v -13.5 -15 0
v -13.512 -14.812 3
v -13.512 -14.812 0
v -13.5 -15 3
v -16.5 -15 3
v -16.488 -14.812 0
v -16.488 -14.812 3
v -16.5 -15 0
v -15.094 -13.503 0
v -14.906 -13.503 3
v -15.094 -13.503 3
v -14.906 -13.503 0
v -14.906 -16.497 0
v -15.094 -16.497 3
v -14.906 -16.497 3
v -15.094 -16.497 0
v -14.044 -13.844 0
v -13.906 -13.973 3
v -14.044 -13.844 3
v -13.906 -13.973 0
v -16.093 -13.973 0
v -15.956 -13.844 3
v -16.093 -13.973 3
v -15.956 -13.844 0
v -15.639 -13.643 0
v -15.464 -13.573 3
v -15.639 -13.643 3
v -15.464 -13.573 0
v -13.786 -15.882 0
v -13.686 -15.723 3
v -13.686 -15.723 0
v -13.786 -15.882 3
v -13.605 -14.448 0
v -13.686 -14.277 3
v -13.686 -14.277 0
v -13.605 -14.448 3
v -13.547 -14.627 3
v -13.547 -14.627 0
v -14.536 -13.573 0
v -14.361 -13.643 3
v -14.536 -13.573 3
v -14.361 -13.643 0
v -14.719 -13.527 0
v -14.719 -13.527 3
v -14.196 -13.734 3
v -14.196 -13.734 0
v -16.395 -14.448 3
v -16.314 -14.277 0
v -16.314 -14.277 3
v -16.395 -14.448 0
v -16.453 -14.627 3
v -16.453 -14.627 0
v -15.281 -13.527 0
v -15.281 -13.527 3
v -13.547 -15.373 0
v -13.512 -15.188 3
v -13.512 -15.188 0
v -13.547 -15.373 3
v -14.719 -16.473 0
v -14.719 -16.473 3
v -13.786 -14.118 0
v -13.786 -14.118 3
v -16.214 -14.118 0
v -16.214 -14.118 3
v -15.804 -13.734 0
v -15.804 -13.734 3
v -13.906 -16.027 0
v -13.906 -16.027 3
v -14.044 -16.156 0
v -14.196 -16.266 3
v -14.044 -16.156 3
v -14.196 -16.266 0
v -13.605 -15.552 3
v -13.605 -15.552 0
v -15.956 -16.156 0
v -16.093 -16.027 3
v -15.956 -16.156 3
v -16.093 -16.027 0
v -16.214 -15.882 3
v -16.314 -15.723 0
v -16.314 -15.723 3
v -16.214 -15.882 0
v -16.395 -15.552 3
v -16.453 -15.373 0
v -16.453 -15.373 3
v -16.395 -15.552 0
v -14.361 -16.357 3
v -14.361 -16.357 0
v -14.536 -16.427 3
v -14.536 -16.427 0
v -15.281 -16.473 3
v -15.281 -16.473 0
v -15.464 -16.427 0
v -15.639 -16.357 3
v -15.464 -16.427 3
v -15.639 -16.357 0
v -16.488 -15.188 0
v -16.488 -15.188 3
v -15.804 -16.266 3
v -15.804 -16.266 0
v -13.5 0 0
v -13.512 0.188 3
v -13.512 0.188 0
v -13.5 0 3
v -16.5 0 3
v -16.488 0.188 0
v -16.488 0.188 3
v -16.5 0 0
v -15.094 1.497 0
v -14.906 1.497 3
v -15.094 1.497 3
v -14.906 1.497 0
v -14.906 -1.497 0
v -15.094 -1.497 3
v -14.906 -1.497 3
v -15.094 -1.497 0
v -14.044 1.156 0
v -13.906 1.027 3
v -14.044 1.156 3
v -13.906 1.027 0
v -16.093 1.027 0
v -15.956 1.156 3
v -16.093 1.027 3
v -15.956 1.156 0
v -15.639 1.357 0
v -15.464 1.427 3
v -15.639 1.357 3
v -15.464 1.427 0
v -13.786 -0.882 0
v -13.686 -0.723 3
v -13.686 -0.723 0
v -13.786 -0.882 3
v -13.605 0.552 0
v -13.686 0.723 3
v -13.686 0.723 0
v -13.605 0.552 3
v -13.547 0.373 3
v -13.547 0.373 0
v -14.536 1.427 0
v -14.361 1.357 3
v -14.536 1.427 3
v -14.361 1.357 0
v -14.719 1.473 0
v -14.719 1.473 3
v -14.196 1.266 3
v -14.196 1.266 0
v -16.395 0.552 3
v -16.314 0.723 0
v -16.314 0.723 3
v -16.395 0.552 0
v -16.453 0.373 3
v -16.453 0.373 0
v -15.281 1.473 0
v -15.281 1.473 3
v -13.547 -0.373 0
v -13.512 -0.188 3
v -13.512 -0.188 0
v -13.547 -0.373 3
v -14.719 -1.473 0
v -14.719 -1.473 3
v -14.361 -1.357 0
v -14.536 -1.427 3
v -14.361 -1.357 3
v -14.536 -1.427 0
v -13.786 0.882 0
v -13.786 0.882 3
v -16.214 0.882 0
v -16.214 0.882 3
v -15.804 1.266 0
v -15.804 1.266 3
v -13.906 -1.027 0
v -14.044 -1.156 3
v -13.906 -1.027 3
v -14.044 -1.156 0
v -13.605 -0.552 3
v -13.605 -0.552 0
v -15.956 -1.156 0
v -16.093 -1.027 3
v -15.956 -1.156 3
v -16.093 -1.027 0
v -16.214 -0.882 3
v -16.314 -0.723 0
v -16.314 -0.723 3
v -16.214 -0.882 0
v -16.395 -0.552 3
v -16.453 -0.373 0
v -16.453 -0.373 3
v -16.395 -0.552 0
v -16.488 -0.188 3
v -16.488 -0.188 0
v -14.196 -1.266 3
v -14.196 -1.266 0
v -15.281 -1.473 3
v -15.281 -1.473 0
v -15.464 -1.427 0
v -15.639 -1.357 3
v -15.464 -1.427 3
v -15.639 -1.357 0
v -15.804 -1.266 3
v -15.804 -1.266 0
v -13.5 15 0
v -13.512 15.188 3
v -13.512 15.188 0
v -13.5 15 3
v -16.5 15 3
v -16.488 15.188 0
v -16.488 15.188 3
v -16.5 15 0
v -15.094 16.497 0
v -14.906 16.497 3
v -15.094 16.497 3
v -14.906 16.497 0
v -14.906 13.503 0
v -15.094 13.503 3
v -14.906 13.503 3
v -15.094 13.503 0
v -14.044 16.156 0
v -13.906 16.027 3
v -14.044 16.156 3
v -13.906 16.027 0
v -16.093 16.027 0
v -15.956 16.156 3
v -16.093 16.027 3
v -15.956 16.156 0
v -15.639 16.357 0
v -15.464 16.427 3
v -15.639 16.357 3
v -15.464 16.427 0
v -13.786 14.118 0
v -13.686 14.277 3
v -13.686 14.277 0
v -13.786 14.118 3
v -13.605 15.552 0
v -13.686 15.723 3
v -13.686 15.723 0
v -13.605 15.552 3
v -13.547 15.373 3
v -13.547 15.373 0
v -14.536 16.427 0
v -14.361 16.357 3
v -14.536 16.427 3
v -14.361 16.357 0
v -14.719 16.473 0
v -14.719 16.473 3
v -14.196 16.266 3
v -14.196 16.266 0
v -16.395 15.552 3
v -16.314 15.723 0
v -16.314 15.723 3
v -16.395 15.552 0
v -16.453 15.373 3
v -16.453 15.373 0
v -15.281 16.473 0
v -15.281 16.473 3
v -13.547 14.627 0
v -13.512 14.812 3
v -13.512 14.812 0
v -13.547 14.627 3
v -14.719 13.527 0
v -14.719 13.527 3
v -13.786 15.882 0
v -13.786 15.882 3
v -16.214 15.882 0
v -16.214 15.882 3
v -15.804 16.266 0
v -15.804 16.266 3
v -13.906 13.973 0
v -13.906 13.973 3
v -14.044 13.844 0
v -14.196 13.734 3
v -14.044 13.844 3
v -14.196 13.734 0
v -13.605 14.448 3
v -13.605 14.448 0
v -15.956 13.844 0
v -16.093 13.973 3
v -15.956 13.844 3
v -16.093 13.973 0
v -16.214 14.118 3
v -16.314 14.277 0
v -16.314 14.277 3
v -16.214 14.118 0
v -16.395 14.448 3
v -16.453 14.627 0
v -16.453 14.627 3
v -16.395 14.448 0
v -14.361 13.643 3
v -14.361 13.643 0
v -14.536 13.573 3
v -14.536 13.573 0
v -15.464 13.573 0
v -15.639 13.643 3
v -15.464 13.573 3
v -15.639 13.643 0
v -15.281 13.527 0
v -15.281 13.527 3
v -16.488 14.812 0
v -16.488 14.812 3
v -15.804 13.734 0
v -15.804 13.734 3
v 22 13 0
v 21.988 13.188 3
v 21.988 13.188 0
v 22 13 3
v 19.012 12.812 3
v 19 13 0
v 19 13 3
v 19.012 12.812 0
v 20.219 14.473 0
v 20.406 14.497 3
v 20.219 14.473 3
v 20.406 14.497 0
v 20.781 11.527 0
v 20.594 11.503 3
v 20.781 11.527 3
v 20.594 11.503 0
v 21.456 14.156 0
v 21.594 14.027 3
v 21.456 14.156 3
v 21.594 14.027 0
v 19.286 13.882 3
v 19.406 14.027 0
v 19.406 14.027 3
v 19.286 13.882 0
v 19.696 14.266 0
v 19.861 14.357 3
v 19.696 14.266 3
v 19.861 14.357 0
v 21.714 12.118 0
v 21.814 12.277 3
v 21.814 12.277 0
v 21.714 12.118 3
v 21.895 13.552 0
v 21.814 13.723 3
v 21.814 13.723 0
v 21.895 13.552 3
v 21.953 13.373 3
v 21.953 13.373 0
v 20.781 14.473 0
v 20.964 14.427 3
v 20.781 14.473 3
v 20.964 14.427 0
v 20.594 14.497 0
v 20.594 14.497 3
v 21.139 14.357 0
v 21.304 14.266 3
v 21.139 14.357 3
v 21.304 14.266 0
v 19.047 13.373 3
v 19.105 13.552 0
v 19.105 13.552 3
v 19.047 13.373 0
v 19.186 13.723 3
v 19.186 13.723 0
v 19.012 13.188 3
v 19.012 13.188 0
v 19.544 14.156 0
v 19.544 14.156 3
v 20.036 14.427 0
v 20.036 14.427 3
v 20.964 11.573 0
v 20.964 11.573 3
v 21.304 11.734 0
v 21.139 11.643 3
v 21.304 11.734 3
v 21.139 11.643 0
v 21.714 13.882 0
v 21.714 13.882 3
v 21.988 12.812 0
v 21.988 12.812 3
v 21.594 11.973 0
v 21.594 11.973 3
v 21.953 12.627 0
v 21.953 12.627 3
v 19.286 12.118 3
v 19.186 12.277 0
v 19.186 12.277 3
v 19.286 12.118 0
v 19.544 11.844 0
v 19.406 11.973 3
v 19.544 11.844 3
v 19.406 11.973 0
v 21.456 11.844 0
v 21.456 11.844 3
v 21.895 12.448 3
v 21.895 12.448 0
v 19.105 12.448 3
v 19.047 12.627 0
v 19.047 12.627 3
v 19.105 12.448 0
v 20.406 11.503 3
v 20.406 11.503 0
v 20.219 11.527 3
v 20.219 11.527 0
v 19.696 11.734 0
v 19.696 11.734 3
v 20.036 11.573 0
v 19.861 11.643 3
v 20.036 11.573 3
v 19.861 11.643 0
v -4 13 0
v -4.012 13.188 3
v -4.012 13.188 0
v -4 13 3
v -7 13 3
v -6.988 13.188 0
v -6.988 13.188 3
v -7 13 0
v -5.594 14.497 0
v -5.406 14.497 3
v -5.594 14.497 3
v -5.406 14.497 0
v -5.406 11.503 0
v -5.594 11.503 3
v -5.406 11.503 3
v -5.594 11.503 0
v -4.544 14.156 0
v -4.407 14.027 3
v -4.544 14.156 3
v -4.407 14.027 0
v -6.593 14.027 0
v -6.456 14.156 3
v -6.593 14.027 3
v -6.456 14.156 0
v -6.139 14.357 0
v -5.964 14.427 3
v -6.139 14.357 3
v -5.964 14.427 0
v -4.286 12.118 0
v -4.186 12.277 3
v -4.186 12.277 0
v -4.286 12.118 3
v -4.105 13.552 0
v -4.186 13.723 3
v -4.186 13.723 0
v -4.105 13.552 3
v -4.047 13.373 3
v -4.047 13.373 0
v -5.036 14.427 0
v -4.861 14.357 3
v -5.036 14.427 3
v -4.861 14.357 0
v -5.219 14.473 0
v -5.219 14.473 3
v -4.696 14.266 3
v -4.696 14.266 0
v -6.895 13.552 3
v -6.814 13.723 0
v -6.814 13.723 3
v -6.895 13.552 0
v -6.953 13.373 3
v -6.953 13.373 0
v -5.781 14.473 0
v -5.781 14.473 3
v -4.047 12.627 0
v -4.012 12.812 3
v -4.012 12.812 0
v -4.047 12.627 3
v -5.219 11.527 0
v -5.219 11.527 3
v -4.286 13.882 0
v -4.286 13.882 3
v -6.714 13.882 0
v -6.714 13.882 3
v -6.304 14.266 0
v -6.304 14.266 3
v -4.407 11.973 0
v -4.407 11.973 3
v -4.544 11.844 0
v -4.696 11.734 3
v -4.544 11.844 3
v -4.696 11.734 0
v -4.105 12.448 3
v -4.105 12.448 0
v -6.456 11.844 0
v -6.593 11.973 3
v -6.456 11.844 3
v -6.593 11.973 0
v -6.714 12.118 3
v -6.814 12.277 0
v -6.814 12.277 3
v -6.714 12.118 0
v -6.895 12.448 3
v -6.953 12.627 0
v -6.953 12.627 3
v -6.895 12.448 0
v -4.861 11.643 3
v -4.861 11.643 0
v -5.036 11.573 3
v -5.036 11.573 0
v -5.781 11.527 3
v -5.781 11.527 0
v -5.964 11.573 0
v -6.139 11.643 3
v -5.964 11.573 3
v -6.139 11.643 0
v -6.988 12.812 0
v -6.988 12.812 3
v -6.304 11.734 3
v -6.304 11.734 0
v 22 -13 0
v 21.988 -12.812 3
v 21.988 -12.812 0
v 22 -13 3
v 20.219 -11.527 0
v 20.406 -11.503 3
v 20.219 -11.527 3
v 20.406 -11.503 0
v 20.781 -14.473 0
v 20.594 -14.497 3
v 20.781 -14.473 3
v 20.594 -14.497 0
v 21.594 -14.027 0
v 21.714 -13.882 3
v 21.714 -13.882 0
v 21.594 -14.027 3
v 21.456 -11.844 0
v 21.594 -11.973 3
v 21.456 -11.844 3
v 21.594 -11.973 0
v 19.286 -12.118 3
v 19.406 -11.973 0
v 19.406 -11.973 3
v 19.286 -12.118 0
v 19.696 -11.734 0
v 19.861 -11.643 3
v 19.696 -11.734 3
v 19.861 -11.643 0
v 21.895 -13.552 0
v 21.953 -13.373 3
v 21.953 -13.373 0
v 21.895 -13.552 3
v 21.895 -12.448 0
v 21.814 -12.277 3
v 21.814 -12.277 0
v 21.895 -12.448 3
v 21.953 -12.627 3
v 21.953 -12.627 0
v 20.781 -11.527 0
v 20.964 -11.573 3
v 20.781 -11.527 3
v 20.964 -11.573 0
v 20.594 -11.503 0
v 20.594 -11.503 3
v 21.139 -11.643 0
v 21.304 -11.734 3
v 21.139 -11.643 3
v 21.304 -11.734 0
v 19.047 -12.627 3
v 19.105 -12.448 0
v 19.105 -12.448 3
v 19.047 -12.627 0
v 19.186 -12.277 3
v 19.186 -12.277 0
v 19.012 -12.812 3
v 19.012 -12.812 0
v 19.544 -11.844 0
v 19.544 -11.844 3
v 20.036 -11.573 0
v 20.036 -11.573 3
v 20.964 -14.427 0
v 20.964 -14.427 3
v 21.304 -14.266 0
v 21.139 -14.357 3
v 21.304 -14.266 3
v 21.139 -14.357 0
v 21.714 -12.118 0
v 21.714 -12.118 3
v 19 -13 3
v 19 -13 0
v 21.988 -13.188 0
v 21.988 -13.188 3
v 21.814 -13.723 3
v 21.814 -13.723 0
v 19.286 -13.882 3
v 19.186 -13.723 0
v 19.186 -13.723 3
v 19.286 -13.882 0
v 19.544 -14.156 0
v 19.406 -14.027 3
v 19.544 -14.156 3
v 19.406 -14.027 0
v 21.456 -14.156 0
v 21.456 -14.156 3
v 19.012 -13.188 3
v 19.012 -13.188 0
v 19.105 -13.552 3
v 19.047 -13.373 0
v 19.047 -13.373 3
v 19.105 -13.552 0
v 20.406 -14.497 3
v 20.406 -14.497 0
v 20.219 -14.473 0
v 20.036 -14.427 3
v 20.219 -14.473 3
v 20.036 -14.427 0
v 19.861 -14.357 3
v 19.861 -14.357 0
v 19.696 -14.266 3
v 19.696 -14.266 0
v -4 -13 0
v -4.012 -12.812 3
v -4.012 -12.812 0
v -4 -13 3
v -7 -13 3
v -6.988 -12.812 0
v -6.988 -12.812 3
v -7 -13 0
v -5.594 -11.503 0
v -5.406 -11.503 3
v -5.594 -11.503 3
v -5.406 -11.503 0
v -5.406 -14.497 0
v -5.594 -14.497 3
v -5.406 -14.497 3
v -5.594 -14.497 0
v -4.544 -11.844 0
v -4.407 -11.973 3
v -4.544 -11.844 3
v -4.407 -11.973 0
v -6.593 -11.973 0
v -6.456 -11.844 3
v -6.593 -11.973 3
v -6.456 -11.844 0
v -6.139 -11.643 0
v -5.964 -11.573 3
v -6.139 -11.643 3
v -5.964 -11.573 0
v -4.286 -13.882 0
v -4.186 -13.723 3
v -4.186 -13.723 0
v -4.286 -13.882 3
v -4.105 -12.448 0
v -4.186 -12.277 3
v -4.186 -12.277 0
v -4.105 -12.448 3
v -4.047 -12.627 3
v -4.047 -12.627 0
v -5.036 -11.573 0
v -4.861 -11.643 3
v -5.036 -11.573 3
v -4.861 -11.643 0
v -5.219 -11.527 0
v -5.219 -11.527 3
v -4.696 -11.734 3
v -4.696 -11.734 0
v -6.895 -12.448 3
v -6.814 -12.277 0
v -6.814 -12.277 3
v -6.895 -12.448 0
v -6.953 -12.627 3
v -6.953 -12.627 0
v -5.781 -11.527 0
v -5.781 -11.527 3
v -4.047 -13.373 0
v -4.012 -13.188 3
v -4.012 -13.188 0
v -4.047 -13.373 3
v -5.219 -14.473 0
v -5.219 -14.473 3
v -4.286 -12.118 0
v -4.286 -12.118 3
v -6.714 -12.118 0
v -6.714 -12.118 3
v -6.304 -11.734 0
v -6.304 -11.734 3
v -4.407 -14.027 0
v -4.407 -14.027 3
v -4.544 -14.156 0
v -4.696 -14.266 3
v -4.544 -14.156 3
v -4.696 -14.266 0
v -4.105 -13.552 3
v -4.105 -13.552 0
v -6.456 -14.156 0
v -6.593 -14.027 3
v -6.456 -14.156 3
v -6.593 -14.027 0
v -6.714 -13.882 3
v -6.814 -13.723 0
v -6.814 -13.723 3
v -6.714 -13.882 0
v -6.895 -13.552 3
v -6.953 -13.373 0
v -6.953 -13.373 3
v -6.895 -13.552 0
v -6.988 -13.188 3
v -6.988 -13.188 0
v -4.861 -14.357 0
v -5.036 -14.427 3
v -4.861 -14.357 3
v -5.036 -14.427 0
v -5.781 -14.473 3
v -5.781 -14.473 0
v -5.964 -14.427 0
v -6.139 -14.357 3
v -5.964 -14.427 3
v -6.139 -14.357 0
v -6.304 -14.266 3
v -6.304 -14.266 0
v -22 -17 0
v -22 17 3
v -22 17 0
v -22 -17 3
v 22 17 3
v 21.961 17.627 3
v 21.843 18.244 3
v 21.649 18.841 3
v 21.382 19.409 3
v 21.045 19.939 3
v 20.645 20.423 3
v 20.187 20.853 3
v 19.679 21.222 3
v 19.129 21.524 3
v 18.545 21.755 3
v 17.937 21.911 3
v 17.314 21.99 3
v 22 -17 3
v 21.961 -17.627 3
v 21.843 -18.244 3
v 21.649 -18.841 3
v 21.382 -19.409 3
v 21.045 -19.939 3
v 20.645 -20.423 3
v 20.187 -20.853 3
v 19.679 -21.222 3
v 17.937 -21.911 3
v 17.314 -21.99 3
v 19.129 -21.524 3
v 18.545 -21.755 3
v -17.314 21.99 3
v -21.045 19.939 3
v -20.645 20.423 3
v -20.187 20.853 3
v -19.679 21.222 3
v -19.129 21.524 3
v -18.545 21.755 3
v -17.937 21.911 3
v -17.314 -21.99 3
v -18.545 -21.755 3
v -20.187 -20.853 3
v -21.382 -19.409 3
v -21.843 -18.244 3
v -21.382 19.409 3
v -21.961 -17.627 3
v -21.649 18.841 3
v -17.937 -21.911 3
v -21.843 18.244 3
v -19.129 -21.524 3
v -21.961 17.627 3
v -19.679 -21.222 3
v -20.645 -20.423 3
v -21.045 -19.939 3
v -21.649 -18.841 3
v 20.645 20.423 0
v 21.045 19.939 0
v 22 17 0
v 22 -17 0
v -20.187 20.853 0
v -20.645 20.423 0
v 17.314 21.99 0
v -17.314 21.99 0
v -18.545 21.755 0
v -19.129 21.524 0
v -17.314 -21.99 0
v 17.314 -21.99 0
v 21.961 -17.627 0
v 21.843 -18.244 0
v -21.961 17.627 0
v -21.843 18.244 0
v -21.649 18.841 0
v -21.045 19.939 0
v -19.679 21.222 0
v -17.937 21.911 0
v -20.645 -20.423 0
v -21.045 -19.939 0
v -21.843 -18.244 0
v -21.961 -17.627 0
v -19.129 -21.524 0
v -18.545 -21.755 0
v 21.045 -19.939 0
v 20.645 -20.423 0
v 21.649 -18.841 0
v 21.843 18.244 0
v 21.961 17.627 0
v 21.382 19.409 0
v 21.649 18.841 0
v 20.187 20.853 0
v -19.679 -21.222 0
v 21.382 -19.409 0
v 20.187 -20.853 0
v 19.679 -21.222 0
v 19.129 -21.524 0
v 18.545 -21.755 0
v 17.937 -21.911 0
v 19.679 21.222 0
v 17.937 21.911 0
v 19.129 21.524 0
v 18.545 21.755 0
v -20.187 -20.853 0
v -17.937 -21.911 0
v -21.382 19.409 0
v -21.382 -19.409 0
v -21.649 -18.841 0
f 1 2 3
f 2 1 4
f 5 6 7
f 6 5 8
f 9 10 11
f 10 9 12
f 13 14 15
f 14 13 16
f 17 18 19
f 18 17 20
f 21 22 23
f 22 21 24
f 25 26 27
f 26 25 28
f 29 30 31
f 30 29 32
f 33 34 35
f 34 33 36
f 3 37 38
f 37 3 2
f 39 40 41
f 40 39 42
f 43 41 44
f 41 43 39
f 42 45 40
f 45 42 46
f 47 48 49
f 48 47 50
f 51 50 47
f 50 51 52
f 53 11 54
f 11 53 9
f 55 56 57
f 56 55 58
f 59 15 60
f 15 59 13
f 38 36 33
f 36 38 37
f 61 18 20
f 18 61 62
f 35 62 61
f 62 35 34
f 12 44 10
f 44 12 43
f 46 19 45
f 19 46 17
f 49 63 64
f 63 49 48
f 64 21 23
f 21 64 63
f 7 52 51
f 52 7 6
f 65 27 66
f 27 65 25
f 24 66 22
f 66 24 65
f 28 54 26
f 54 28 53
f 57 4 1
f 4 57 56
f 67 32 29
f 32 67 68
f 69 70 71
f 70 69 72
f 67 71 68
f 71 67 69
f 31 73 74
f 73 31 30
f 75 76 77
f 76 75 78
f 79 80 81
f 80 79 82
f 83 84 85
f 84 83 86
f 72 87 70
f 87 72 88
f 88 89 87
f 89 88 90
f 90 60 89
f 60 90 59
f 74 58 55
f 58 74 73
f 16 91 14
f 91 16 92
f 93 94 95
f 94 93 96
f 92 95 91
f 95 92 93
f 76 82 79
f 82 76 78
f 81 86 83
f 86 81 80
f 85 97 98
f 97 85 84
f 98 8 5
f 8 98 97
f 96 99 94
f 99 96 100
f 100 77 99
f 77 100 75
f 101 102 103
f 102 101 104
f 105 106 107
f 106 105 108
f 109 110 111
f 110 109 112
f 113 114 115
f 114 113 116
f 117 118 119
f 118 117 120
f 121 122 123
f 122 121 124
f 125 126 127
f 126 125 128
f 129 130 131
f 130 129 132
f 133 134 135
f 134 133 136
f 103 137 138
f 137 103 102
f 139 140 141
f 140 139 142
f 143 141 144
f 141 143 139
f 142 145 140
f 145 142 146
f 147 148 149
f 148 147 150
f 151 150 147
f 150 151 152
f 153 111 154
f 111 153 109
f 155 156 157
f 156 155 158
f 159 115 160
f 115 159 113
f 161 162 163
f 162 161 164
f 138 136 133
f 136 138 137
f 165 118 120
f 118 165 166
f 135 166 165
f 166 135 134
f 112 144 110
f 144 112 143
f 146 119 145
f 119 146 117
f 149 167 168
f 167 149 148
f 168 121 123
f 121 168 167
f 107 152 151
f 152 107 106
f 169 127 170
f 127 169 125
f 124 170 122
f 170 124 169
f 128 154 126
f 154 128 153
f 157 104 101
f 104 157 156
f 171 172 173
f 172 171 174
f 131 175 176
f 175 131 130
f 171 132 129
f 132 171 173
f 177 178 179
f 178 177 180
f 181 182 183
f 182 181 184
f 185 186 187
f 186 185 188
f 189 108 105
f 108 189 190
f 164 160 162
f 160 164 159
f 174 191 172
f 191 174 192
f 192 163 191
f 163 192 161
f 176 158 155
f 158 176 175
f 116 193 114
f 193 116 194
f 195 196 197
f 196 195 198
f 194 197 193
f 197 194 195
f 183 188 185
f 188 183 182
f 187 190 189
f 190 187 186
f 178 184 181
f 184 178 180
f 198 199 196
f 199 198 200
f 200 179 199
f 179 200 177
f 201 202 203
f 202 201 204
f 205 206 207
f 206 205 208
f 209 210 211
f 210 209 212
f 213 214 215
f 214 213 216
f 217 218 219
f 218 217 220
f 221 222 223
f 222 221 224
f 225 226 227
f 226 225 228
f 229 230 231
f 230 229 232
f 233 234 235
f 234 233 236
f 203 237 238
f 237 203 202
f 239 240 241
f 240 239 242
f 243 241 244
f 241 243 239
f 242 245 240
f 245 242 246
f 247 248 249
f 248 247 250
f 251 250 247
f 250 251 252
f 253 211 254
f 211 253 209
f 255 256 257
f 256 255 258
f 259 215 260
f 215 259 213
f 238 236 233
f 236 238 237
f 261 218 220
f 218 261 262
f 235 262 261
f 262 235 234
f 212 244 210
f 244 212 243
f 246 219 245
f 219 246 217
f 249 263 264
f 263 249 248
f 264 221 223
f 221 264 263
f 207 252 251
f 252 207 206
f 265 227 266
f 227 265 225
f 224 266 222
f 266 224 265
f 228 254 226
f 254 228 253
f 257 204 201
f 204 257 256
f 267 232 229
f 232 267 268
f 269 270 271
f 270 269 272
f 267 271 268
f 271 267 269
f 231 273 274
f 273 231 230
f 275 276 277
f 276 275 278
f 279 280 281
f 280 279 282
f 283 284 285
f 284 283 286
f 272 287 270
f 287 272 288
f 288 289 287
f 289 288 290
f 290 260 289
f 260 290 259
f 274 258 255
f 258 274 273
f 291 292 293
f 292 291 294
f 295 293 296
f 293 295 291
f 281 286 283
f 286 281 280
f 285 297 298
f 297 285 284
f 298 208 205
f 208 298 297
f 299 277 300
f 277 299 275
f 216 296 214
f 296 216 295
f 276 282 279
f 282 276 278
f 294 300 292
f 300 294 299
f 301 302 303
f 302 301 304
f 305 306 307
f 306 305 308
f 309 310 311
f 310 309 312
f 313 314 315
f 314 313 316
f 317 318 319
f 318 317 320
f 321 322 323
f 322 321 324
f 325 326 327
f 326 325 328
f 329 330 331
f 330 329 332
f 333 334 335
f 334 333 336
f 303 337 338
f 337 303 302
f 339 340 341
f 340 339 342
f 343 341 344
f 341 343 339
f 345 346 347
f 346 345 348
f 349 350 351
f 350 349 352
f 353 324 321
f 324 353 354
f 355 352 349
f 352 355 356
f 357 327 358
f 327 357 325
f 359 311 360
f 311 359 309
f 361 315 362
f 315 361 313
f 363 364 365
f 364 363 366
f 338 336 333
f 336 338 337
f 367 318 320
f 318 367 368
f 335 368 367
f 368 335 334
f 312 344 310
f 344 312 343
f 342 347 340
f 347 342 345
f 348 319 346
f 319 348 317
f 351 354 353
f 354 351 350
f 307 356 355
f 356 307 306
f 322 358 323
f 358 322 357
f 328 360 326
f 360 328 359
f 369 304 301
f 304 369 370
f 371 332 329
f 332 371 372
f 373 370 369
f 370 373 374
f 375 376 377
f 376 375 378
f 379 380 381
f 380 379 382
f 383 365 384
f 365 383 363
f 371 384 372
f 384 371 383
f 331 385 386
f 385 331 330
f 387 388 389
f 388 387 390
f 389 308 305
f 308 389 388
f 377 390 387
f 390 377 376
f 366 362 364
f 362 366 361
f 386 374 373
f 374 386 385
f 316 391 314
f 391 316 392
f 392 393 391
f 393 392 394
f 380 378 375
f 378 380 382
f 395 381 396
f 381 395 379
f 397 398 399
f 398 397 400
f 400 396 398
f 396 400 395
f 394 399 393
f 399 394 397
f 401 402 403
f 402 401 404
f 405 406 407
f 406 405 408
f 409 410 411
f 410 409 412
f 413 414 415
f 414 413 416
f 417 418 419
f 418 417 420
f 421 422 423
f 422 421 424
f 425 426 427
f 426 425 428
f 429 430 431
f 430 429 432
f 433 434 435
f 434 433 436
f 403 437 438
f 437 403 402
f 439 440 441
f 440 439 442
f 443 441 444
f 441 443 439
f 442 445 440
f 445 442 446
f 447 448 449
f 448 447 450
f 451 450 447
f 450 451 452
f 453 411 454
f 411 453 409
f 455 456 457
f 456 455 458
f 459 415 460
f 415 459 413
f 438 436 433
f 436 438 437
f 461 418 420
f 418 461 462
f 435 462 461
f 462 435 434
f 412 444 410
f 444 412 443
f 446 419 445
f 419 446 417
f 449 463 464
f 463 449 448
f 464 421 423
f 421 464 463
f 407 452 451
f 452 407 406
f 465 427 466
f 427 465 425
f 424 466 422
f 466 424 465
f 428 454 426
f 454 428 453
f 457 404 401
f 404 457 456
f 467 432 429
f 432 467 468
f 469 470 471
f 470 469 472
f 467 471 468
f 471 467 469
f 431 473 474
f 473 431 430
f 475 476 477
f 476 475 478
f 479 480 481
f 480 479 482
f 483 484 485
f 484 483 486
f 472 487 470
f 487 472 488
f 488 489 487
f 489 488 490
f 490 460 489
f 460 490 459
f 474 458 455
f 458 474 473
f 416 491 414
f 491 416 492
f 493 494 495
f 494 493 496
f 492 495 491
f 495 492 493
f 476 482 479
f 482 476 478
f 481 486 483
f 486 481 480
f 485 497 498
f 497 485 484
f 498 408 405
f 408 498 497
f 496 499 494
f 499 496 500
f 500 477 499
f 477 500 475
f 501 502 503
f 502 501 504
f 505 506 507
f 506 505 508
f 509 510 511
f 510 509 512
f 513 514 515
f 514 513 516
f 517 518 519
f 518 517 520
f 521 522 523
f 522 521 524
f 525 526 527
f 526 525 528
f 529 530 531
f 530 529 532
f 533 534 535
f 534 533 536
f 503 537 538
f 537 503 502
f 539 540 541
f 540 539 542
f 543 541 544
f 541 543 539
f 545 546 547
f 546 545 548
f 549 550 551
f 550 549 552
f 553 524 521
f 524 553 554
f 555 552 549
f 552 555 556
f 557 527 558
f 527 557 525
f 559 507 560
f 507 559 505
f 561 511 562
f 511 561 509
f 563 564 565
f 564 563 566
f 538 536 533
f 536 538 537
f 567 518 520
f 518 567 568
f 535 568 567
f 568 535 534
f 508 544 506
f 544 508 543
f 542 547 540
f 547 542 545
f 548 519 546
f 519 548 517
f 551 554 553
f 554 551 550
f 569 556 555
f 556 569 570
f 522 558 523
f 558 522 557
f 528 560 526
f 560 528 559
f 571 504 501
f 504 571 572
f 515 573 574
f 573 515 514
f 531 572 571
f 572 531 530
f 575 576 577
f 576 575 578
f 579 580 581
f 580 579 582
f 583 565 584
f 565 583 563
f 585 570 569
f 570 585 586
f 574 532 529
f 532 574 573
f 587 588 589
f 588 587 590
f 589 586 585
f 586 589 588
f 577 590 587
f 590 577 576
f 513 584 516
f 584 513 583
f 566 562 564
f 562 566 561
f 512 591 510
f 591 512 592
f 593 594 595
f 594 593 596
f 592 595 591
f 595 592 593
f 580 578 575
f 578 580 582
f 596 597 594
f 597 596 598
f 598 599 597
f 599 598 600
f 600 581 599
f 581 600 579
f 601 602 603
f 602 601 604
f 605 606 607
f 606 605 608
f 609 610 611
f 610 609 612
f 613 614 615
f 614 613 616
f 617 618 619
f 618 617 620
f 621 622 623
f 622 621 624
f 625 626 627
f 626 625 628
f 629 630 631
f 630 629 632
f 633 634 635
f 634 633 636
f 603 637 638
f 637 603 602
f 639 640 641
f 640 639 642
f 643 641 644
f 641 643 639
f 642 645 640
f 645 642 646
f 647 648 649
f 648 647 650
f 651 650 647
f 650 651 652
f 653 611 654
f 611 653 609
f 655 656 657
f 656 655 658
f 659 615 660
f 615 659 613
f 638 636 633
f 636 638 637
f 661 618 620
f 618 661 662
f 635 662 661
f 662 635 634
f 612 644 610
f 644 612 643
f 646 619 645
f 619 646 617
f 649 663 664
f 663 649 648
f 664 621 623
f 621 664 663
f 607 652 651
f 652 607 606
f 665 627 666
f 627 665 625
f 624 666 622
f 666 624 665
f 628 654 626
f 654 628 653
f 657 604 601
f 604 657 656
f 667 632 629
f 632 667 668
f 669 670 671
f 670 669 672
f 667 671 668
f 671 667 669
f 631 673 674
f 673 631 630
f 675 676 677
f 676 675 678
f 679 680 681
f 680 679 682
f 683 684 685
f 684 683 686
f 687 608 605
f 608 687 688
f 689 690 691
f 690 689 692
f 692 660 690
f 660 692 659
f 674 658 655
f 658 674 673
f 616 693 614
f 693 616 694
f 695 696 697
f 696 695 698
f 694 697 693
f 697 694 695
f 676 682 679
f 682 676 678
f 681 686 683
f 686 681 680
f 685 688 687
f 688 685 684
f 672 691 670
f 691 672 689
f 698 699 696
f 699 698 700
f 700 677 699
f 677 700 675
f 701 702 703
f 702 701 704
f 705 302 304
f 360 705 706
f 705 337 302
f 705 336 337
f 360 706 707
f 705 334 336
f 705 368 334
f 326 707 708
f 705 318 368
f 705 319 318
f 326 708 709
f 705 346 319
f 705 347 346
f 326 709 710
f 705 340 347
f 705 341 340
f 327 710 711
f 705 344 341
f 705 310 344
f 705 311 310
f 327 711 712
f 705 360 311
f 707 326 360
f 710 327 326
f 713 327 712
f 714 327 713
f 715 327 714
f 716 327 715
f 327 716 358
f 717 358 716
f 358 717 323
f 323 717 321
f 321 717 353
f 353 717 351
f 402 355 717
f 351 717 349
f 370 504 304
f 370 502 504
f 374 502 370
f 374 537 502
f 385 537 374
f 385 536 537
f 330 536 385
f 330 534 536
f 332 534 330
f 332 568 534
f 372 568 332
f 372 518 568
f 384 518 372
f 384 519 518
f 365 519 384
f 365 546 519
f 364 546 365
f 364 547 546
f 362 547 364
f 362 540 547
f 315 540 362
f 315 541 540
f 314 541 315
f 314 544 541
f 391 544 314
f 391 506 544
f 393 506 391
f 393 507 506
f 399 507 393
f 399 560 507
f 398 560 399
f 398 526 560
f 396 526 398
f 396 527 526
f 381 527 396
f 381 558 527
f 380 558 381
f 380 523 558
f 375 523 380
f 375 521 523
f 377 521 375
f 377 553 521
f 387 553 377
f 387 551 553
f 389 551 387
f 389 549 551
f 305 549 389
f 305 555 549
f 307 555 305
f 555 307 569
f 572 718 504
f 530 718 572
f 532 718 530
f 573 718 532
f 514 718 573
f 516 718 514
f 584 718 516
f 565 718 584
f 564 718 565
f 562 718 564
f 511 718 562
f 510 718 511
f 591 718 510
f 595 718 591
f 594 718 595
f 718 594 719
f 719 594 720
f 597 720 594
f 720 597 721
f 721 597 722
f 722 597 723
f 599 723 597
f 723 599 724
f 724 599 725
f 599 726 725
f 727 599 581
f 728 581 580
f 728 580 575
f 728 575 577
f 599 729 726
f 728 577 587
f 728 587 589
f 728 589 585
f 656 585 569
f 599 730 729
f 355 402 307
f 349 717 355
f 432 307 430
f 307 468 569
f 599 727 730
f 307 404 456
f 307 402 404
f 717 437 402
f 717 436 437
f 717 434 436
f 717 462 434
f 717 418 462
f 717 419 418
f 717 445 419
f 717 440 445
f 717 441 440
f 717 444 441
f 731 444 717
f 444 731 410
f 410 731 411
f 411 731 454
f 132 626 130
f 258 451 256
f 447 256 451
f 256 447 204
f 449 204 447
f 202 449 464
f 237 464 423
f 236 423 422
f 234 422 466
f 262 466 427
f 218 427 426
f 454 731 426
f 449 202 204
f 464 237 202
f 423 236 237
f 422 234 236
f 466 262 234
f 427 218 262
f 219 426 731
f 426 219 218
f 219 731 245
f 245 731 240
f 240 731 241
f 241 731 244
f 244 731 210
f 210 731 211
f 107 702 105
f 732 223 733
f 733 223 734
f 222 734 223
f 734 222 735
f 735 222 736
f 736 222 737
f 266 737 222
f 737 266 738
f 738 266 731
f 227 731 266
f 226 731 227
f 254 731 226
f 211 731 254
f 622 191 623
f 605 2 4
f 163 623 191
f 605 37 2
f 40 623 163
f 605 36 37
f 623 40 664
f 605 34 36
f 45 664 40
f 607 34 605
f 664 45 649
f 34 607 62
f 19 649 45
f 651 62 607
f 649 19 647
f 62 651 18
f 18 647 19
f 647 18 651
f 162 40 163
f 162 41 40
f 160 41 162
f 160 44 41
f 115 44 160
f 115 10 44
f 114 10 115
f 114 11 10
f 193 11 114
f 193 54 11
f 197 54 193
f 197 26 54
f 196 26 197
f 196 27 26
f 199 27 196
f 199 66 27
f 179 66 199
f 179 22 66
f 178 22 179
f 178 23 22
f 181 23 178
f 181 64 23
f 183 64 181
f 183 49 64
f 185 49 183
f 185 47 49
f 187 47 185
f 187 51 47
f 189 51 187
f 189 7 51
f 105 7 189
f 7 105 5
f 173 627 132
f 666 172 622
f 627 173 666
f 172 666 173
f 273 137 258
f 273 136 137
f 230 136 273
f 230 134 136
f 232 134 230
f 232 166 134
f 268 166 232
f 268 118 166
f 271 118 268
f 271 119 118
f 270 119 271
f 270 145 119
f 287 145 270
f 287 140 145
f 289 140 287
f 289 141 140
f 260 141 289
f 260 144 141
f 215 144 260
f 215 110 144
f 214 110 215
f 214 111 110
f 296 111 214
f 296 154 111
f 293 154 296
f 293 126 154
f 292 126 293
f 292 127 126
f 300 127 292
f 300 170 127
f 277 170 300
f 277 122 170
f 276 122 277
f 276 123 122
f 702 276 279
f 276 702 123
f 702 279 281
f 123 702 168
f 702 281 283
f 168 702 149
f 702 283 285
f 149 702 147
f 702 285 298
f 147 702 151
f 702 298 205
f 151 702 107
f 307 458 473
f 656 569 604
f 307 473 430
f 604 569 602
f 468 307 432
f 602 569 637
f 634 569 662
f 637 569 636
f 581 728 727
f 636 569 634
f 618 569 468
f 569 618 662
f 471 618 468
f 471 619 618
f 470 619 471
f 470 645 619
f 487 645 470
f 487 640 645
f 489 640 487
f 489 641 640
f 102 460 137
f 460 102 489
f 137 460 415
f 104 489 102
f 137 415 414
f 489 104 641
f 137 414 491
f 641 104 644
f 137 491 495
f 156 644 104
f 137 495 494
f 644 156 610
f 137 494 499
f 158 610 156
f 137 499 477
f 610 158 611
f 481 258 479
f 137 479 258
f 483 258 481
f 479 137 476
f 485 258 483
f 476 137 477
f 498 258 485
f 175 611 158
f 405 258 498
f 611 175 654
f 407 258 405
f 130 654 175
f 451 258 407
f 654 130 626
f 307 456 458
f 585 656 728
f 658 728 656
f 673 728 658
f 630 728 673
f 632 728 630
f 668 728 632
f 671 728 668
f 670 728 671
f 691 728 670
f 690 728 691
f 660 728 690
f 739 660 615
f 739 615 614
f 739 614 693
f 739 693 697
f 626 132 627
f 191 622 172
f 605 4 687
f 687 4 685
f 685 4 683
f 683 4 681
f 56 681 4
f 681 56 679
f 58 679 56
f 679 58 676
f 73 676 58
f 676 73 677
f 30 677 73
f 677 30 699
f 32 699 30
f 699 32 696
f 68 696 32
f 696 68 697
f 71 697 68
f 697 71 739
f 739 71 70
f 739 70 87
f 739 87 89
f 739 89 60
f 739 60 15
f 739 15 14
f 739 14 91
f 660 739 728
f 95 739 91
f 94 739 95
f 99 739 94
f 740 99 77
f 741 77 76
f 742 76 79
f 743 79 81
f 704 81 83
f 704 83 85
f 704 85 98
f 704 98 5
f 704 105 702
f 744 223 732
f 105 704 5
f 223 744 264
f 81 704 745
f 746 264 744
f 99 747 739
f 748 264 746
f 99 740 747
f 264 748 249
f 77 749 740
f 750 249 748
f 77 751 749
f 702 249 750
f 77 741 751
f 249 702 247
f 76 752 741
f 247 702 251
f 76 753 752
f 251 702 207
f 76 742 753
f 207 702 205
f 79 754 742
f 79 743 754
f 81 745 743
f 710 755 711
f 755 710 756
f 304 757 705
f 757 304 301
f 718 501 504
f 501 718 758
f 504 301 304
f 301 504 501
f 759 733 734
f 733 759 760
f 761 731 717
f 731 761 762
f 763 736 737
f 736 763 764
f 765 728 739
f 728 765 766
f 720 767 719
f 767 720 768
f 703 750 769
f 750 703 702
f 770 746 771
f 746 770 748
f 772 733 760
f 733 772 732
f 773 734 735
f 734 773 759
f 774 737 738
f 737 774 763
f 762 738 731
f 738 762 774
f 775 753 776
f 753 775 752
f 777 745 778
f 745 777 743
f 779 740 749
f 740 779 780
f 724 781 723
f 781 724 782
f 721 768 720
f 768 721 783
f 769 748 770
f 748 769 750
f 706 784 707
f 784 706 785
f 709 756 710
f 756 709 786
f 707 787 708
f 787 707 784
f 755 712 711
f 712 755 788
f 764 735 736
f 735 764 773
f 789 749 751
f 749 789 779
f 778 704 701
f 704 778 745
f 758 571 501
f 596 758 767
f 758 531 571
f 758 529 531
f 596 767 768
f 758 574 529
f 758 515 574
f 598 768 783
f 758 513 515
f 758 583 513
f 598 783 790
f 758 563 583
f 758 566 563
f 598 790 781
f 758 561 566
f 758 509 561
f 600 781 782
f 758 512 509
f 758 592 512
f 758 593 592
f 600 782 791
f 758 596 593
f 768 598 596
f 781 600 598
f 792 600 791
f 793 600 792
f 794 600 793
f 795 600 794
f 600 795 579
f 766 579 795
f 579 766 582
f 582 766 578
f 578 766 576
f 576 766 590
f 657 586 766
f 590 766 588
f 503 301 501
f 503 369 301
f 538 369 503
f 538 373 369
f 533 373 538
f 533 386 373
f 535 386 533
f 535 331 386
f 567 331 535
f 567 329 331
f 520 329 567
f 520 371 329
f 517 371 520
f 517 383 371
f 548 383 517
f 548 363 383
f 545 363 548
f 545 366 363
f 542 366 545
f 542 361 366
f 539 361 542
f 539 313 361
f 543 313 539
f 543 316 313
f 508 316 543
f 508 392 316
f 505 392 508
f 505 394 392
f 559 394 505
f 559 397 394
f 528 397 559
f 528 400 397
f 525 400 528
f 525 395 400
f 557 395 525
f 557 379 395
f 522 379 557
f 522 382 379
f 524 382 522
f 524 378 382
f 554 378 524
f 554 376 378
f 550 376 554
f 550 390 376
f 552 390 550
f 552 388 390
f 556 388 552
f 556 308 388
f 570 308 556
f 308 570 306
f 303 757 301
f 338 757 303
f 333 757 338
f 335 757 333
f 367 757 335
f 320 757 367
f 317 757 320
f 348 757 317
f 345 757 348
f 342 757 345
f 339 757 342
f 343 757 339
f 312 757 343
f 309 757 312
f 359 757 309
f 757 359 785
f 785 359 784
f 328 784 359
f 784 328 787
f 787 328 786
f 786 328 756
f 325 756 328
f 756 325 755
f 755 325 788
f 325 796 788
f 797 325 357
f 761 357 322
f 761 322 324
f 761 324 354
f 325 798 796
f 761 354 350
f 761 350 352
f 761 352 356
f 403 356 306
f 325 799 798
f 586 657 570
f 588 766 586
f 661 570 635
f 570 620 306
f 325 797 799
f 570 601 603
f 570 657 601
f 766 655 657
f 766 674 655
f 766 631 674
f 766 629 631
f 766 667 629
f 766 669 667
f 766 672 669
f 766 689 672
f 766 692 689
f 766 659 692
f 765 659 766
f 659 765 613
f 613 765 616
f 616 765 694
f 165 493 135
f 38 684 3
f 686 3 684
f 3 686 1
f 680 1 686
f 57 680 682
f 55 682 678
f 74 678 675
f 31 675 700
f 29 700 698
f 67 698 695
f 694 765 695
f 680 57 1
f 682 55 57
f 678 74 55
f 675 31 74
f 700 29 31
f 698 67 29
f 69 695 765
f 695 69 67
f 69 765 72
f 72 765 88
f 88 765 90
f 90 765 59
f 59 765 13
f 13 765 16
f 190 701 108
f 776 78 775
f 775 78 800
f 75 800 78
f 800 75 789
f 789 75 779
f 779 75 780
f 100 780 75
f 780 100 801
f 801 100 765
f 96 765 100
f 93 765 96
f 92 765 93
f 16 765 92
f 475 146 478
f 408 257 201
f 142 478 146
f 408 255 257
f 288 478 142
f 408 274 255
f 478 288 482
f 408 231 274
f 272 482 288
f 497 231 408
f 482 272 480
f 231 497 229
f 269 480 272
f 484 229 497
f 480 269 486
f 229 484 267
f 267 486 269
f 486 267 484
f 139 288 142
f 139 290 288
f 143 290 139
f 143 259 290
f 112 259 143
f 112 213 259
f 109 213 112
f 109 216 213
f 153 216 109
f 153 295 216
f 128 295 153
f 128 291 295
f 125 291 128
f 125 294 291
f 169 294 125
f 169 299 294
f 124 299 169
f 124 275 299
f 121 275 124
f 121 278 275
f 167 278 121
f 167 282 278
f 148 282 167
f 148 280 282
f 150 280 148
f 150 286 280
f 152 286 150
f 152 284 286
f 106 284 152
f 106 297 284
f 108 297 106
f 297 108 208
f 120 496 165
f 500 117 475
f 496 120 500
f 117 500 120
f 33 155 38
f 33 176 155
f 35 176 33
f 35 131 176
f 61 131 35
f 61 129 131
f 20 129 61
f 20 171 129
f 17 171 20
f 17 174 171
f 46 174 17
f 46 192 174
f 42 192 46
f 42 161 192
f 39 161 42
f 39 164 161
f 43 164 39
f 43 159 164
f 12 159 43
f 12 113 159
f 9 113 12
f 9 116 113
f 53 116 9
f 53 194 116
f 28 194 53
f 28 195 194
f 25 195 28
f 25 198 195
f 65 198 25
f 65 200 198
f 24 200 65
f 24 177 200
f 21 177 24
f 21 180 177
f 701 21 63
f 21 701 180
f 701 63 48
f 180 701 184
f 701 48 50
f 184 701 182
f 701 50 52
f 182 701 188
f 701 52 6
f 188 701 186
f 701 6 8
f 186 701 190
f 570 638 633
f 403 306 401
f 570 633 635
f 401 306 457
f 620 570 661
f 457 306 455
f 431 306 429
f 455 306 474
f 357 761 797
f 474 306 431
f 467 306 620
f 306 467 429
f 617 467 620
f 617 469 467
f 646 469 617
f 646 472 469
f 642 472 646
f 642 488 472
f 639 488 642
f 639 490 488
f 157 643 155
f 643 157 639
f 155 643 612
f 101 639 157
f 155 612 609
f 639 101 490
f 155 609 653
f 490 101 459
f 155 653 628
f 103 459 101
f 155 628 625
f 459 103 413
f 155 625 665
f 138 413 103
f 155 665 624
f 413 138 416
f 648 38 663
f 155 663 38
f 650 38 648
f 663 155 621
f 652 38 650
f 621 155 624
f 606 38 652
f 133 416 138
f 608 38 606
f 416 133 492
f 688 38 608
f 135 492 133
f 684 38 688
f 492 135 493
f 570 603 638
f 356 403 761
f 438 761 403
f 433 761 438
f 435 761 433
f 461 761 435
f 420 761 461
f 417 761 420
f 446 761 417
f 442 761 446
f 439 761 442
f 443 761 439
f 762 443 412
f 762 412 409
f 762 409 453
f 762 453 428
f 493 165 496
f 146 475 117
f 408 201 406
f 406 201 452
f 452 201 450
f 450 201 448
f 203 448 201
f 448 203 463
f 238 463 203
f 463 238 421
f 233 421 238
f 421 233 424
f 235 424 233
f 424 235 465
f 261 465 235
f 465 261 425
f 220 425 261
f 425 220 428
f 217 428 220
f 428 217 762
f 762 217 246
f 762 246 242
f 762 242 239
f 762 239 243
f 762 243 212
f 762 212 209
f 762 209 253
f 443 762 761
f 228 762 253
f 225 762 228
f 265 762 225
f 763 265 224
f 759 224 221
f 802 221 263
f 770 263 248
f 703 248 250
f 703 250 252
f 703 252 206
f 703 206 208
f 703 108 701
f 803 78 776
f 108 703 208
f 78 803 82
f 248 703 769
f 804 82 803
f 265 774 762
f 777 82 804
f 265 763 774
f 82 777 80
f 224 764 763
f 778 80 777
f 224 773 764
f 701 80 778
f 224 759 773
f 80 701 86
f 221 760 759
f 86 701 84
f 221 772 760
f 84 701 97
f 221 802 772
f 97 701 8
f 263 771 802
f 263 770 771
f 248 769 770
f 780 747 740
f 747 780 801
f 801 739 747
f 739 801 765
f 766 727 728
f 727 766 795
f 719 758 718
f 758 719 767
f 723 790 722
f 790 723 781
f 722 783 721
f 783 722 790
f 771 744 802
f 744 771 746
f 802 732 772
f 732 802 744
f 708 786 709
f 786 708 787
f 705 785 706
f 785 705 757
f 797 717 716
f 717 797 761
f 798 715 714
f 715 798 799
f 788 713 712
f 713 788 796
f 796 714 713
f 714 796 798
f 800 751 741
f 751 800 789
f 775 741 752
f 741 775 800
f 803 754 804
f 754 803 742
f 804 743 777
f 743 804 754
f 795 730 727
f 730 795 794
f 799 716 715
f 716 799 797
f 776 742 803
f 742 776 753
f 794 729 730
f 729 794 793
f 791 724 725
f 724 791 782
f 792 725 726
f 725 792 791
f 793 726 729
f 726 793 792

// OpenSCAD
$fn = 50;


difference() {
	union() {
		translate(v = [0, 0, 0]) {
			rotate(a = [0, 0, 0]) {
				hull() {
					translate(v = [-17.0000000000, 17.0000000000, 0]) {
						rotate(a = [0, 0, 0]) {
							translate(v = [0, 0, 0]) {
								rotate(a = [0, 0, 0]) {
									cylinder(h = 3, r = 5);
								}
							}
						}
					}
					translate(v = [17.0000000000, 17.0000000000, 0]) {
						rotate(a = [0, 0, 0]) {
							translate(v = [0, 0, 0]) {
								rotate(a = [0, 0, 0]) {
									cylinder(h = 3, r = 5);
								}
							}
						}
					}
					translate(v = [-17.0000000000, -17.0000000000, 0]) {
						rotate(a = [0, 0, 0]) {
							translate(v = [0, 0, 0]) {
								rotate(a = [0, 0, 0]) {
									cylinder(h = 3, r = 5);
								}
							}
						}
					}
					translate(v = [17.0000000000, -17.0000000000, 0]) {
						rotate(a = [0, 0, 0]) {
							translate(v = [0, 0, 0]) {
								rotate(a = [0, 0, 0]) {
									cylinder(h = 3, r = 5);
								}
							}
						}
					}
				}
			}
		}
	}
	union() {
		translate(v = [-15.0000000000, -15.0000000000, -125.0000000000]) {
			rotate(a = [0, 0, 0]) {
				cylinder(h = 250, r = 1.5000000000);
			}
		}
		translate(v = [-15.0000000000, 0.0000000000, -125.0000000000]) {
			rotate(a = [0, 0, 0]) {
				cylinder(h = 250, r = 1.5000000000);
			}
		}
		translate(v = [-15.0000000000, 15.0000000000, -125.0000000000]) {
			rotate(a = [0, 0, 0]) {
				cylinder(h = 250, r = 1.5000000000);
			}
		}
		translate(v = [20.5000000000, 13.0000000000, -125.0000000000]) {
			rotate(a = [0, 0, 0]) {
				cylinder(h = 250, r = 1.5000000000);
			}
		}
		translate(v = [-5.5000000000, 13.0000000000, -125.0000000000]) {
			rotate(a = [0, 0, 0]) {
				cylinder(h = 250, r = 1.5000000000);
			}
		}
		translate(v = [20.5000000000, -13.0000000000, -125.0000000000]) {
			rotate(a = [0, 0, 0]) {
				cylinder(h = 250, r = 1.5000000000);
			}
		}
		translate(v = [-5.5000000000, -13.0000000000, -125.0000000000]) {
			rotate(a = [0, 0, 0]) {
				cylinder(h = 250, r = 1.5000000000);
			}
		}
	}
}
